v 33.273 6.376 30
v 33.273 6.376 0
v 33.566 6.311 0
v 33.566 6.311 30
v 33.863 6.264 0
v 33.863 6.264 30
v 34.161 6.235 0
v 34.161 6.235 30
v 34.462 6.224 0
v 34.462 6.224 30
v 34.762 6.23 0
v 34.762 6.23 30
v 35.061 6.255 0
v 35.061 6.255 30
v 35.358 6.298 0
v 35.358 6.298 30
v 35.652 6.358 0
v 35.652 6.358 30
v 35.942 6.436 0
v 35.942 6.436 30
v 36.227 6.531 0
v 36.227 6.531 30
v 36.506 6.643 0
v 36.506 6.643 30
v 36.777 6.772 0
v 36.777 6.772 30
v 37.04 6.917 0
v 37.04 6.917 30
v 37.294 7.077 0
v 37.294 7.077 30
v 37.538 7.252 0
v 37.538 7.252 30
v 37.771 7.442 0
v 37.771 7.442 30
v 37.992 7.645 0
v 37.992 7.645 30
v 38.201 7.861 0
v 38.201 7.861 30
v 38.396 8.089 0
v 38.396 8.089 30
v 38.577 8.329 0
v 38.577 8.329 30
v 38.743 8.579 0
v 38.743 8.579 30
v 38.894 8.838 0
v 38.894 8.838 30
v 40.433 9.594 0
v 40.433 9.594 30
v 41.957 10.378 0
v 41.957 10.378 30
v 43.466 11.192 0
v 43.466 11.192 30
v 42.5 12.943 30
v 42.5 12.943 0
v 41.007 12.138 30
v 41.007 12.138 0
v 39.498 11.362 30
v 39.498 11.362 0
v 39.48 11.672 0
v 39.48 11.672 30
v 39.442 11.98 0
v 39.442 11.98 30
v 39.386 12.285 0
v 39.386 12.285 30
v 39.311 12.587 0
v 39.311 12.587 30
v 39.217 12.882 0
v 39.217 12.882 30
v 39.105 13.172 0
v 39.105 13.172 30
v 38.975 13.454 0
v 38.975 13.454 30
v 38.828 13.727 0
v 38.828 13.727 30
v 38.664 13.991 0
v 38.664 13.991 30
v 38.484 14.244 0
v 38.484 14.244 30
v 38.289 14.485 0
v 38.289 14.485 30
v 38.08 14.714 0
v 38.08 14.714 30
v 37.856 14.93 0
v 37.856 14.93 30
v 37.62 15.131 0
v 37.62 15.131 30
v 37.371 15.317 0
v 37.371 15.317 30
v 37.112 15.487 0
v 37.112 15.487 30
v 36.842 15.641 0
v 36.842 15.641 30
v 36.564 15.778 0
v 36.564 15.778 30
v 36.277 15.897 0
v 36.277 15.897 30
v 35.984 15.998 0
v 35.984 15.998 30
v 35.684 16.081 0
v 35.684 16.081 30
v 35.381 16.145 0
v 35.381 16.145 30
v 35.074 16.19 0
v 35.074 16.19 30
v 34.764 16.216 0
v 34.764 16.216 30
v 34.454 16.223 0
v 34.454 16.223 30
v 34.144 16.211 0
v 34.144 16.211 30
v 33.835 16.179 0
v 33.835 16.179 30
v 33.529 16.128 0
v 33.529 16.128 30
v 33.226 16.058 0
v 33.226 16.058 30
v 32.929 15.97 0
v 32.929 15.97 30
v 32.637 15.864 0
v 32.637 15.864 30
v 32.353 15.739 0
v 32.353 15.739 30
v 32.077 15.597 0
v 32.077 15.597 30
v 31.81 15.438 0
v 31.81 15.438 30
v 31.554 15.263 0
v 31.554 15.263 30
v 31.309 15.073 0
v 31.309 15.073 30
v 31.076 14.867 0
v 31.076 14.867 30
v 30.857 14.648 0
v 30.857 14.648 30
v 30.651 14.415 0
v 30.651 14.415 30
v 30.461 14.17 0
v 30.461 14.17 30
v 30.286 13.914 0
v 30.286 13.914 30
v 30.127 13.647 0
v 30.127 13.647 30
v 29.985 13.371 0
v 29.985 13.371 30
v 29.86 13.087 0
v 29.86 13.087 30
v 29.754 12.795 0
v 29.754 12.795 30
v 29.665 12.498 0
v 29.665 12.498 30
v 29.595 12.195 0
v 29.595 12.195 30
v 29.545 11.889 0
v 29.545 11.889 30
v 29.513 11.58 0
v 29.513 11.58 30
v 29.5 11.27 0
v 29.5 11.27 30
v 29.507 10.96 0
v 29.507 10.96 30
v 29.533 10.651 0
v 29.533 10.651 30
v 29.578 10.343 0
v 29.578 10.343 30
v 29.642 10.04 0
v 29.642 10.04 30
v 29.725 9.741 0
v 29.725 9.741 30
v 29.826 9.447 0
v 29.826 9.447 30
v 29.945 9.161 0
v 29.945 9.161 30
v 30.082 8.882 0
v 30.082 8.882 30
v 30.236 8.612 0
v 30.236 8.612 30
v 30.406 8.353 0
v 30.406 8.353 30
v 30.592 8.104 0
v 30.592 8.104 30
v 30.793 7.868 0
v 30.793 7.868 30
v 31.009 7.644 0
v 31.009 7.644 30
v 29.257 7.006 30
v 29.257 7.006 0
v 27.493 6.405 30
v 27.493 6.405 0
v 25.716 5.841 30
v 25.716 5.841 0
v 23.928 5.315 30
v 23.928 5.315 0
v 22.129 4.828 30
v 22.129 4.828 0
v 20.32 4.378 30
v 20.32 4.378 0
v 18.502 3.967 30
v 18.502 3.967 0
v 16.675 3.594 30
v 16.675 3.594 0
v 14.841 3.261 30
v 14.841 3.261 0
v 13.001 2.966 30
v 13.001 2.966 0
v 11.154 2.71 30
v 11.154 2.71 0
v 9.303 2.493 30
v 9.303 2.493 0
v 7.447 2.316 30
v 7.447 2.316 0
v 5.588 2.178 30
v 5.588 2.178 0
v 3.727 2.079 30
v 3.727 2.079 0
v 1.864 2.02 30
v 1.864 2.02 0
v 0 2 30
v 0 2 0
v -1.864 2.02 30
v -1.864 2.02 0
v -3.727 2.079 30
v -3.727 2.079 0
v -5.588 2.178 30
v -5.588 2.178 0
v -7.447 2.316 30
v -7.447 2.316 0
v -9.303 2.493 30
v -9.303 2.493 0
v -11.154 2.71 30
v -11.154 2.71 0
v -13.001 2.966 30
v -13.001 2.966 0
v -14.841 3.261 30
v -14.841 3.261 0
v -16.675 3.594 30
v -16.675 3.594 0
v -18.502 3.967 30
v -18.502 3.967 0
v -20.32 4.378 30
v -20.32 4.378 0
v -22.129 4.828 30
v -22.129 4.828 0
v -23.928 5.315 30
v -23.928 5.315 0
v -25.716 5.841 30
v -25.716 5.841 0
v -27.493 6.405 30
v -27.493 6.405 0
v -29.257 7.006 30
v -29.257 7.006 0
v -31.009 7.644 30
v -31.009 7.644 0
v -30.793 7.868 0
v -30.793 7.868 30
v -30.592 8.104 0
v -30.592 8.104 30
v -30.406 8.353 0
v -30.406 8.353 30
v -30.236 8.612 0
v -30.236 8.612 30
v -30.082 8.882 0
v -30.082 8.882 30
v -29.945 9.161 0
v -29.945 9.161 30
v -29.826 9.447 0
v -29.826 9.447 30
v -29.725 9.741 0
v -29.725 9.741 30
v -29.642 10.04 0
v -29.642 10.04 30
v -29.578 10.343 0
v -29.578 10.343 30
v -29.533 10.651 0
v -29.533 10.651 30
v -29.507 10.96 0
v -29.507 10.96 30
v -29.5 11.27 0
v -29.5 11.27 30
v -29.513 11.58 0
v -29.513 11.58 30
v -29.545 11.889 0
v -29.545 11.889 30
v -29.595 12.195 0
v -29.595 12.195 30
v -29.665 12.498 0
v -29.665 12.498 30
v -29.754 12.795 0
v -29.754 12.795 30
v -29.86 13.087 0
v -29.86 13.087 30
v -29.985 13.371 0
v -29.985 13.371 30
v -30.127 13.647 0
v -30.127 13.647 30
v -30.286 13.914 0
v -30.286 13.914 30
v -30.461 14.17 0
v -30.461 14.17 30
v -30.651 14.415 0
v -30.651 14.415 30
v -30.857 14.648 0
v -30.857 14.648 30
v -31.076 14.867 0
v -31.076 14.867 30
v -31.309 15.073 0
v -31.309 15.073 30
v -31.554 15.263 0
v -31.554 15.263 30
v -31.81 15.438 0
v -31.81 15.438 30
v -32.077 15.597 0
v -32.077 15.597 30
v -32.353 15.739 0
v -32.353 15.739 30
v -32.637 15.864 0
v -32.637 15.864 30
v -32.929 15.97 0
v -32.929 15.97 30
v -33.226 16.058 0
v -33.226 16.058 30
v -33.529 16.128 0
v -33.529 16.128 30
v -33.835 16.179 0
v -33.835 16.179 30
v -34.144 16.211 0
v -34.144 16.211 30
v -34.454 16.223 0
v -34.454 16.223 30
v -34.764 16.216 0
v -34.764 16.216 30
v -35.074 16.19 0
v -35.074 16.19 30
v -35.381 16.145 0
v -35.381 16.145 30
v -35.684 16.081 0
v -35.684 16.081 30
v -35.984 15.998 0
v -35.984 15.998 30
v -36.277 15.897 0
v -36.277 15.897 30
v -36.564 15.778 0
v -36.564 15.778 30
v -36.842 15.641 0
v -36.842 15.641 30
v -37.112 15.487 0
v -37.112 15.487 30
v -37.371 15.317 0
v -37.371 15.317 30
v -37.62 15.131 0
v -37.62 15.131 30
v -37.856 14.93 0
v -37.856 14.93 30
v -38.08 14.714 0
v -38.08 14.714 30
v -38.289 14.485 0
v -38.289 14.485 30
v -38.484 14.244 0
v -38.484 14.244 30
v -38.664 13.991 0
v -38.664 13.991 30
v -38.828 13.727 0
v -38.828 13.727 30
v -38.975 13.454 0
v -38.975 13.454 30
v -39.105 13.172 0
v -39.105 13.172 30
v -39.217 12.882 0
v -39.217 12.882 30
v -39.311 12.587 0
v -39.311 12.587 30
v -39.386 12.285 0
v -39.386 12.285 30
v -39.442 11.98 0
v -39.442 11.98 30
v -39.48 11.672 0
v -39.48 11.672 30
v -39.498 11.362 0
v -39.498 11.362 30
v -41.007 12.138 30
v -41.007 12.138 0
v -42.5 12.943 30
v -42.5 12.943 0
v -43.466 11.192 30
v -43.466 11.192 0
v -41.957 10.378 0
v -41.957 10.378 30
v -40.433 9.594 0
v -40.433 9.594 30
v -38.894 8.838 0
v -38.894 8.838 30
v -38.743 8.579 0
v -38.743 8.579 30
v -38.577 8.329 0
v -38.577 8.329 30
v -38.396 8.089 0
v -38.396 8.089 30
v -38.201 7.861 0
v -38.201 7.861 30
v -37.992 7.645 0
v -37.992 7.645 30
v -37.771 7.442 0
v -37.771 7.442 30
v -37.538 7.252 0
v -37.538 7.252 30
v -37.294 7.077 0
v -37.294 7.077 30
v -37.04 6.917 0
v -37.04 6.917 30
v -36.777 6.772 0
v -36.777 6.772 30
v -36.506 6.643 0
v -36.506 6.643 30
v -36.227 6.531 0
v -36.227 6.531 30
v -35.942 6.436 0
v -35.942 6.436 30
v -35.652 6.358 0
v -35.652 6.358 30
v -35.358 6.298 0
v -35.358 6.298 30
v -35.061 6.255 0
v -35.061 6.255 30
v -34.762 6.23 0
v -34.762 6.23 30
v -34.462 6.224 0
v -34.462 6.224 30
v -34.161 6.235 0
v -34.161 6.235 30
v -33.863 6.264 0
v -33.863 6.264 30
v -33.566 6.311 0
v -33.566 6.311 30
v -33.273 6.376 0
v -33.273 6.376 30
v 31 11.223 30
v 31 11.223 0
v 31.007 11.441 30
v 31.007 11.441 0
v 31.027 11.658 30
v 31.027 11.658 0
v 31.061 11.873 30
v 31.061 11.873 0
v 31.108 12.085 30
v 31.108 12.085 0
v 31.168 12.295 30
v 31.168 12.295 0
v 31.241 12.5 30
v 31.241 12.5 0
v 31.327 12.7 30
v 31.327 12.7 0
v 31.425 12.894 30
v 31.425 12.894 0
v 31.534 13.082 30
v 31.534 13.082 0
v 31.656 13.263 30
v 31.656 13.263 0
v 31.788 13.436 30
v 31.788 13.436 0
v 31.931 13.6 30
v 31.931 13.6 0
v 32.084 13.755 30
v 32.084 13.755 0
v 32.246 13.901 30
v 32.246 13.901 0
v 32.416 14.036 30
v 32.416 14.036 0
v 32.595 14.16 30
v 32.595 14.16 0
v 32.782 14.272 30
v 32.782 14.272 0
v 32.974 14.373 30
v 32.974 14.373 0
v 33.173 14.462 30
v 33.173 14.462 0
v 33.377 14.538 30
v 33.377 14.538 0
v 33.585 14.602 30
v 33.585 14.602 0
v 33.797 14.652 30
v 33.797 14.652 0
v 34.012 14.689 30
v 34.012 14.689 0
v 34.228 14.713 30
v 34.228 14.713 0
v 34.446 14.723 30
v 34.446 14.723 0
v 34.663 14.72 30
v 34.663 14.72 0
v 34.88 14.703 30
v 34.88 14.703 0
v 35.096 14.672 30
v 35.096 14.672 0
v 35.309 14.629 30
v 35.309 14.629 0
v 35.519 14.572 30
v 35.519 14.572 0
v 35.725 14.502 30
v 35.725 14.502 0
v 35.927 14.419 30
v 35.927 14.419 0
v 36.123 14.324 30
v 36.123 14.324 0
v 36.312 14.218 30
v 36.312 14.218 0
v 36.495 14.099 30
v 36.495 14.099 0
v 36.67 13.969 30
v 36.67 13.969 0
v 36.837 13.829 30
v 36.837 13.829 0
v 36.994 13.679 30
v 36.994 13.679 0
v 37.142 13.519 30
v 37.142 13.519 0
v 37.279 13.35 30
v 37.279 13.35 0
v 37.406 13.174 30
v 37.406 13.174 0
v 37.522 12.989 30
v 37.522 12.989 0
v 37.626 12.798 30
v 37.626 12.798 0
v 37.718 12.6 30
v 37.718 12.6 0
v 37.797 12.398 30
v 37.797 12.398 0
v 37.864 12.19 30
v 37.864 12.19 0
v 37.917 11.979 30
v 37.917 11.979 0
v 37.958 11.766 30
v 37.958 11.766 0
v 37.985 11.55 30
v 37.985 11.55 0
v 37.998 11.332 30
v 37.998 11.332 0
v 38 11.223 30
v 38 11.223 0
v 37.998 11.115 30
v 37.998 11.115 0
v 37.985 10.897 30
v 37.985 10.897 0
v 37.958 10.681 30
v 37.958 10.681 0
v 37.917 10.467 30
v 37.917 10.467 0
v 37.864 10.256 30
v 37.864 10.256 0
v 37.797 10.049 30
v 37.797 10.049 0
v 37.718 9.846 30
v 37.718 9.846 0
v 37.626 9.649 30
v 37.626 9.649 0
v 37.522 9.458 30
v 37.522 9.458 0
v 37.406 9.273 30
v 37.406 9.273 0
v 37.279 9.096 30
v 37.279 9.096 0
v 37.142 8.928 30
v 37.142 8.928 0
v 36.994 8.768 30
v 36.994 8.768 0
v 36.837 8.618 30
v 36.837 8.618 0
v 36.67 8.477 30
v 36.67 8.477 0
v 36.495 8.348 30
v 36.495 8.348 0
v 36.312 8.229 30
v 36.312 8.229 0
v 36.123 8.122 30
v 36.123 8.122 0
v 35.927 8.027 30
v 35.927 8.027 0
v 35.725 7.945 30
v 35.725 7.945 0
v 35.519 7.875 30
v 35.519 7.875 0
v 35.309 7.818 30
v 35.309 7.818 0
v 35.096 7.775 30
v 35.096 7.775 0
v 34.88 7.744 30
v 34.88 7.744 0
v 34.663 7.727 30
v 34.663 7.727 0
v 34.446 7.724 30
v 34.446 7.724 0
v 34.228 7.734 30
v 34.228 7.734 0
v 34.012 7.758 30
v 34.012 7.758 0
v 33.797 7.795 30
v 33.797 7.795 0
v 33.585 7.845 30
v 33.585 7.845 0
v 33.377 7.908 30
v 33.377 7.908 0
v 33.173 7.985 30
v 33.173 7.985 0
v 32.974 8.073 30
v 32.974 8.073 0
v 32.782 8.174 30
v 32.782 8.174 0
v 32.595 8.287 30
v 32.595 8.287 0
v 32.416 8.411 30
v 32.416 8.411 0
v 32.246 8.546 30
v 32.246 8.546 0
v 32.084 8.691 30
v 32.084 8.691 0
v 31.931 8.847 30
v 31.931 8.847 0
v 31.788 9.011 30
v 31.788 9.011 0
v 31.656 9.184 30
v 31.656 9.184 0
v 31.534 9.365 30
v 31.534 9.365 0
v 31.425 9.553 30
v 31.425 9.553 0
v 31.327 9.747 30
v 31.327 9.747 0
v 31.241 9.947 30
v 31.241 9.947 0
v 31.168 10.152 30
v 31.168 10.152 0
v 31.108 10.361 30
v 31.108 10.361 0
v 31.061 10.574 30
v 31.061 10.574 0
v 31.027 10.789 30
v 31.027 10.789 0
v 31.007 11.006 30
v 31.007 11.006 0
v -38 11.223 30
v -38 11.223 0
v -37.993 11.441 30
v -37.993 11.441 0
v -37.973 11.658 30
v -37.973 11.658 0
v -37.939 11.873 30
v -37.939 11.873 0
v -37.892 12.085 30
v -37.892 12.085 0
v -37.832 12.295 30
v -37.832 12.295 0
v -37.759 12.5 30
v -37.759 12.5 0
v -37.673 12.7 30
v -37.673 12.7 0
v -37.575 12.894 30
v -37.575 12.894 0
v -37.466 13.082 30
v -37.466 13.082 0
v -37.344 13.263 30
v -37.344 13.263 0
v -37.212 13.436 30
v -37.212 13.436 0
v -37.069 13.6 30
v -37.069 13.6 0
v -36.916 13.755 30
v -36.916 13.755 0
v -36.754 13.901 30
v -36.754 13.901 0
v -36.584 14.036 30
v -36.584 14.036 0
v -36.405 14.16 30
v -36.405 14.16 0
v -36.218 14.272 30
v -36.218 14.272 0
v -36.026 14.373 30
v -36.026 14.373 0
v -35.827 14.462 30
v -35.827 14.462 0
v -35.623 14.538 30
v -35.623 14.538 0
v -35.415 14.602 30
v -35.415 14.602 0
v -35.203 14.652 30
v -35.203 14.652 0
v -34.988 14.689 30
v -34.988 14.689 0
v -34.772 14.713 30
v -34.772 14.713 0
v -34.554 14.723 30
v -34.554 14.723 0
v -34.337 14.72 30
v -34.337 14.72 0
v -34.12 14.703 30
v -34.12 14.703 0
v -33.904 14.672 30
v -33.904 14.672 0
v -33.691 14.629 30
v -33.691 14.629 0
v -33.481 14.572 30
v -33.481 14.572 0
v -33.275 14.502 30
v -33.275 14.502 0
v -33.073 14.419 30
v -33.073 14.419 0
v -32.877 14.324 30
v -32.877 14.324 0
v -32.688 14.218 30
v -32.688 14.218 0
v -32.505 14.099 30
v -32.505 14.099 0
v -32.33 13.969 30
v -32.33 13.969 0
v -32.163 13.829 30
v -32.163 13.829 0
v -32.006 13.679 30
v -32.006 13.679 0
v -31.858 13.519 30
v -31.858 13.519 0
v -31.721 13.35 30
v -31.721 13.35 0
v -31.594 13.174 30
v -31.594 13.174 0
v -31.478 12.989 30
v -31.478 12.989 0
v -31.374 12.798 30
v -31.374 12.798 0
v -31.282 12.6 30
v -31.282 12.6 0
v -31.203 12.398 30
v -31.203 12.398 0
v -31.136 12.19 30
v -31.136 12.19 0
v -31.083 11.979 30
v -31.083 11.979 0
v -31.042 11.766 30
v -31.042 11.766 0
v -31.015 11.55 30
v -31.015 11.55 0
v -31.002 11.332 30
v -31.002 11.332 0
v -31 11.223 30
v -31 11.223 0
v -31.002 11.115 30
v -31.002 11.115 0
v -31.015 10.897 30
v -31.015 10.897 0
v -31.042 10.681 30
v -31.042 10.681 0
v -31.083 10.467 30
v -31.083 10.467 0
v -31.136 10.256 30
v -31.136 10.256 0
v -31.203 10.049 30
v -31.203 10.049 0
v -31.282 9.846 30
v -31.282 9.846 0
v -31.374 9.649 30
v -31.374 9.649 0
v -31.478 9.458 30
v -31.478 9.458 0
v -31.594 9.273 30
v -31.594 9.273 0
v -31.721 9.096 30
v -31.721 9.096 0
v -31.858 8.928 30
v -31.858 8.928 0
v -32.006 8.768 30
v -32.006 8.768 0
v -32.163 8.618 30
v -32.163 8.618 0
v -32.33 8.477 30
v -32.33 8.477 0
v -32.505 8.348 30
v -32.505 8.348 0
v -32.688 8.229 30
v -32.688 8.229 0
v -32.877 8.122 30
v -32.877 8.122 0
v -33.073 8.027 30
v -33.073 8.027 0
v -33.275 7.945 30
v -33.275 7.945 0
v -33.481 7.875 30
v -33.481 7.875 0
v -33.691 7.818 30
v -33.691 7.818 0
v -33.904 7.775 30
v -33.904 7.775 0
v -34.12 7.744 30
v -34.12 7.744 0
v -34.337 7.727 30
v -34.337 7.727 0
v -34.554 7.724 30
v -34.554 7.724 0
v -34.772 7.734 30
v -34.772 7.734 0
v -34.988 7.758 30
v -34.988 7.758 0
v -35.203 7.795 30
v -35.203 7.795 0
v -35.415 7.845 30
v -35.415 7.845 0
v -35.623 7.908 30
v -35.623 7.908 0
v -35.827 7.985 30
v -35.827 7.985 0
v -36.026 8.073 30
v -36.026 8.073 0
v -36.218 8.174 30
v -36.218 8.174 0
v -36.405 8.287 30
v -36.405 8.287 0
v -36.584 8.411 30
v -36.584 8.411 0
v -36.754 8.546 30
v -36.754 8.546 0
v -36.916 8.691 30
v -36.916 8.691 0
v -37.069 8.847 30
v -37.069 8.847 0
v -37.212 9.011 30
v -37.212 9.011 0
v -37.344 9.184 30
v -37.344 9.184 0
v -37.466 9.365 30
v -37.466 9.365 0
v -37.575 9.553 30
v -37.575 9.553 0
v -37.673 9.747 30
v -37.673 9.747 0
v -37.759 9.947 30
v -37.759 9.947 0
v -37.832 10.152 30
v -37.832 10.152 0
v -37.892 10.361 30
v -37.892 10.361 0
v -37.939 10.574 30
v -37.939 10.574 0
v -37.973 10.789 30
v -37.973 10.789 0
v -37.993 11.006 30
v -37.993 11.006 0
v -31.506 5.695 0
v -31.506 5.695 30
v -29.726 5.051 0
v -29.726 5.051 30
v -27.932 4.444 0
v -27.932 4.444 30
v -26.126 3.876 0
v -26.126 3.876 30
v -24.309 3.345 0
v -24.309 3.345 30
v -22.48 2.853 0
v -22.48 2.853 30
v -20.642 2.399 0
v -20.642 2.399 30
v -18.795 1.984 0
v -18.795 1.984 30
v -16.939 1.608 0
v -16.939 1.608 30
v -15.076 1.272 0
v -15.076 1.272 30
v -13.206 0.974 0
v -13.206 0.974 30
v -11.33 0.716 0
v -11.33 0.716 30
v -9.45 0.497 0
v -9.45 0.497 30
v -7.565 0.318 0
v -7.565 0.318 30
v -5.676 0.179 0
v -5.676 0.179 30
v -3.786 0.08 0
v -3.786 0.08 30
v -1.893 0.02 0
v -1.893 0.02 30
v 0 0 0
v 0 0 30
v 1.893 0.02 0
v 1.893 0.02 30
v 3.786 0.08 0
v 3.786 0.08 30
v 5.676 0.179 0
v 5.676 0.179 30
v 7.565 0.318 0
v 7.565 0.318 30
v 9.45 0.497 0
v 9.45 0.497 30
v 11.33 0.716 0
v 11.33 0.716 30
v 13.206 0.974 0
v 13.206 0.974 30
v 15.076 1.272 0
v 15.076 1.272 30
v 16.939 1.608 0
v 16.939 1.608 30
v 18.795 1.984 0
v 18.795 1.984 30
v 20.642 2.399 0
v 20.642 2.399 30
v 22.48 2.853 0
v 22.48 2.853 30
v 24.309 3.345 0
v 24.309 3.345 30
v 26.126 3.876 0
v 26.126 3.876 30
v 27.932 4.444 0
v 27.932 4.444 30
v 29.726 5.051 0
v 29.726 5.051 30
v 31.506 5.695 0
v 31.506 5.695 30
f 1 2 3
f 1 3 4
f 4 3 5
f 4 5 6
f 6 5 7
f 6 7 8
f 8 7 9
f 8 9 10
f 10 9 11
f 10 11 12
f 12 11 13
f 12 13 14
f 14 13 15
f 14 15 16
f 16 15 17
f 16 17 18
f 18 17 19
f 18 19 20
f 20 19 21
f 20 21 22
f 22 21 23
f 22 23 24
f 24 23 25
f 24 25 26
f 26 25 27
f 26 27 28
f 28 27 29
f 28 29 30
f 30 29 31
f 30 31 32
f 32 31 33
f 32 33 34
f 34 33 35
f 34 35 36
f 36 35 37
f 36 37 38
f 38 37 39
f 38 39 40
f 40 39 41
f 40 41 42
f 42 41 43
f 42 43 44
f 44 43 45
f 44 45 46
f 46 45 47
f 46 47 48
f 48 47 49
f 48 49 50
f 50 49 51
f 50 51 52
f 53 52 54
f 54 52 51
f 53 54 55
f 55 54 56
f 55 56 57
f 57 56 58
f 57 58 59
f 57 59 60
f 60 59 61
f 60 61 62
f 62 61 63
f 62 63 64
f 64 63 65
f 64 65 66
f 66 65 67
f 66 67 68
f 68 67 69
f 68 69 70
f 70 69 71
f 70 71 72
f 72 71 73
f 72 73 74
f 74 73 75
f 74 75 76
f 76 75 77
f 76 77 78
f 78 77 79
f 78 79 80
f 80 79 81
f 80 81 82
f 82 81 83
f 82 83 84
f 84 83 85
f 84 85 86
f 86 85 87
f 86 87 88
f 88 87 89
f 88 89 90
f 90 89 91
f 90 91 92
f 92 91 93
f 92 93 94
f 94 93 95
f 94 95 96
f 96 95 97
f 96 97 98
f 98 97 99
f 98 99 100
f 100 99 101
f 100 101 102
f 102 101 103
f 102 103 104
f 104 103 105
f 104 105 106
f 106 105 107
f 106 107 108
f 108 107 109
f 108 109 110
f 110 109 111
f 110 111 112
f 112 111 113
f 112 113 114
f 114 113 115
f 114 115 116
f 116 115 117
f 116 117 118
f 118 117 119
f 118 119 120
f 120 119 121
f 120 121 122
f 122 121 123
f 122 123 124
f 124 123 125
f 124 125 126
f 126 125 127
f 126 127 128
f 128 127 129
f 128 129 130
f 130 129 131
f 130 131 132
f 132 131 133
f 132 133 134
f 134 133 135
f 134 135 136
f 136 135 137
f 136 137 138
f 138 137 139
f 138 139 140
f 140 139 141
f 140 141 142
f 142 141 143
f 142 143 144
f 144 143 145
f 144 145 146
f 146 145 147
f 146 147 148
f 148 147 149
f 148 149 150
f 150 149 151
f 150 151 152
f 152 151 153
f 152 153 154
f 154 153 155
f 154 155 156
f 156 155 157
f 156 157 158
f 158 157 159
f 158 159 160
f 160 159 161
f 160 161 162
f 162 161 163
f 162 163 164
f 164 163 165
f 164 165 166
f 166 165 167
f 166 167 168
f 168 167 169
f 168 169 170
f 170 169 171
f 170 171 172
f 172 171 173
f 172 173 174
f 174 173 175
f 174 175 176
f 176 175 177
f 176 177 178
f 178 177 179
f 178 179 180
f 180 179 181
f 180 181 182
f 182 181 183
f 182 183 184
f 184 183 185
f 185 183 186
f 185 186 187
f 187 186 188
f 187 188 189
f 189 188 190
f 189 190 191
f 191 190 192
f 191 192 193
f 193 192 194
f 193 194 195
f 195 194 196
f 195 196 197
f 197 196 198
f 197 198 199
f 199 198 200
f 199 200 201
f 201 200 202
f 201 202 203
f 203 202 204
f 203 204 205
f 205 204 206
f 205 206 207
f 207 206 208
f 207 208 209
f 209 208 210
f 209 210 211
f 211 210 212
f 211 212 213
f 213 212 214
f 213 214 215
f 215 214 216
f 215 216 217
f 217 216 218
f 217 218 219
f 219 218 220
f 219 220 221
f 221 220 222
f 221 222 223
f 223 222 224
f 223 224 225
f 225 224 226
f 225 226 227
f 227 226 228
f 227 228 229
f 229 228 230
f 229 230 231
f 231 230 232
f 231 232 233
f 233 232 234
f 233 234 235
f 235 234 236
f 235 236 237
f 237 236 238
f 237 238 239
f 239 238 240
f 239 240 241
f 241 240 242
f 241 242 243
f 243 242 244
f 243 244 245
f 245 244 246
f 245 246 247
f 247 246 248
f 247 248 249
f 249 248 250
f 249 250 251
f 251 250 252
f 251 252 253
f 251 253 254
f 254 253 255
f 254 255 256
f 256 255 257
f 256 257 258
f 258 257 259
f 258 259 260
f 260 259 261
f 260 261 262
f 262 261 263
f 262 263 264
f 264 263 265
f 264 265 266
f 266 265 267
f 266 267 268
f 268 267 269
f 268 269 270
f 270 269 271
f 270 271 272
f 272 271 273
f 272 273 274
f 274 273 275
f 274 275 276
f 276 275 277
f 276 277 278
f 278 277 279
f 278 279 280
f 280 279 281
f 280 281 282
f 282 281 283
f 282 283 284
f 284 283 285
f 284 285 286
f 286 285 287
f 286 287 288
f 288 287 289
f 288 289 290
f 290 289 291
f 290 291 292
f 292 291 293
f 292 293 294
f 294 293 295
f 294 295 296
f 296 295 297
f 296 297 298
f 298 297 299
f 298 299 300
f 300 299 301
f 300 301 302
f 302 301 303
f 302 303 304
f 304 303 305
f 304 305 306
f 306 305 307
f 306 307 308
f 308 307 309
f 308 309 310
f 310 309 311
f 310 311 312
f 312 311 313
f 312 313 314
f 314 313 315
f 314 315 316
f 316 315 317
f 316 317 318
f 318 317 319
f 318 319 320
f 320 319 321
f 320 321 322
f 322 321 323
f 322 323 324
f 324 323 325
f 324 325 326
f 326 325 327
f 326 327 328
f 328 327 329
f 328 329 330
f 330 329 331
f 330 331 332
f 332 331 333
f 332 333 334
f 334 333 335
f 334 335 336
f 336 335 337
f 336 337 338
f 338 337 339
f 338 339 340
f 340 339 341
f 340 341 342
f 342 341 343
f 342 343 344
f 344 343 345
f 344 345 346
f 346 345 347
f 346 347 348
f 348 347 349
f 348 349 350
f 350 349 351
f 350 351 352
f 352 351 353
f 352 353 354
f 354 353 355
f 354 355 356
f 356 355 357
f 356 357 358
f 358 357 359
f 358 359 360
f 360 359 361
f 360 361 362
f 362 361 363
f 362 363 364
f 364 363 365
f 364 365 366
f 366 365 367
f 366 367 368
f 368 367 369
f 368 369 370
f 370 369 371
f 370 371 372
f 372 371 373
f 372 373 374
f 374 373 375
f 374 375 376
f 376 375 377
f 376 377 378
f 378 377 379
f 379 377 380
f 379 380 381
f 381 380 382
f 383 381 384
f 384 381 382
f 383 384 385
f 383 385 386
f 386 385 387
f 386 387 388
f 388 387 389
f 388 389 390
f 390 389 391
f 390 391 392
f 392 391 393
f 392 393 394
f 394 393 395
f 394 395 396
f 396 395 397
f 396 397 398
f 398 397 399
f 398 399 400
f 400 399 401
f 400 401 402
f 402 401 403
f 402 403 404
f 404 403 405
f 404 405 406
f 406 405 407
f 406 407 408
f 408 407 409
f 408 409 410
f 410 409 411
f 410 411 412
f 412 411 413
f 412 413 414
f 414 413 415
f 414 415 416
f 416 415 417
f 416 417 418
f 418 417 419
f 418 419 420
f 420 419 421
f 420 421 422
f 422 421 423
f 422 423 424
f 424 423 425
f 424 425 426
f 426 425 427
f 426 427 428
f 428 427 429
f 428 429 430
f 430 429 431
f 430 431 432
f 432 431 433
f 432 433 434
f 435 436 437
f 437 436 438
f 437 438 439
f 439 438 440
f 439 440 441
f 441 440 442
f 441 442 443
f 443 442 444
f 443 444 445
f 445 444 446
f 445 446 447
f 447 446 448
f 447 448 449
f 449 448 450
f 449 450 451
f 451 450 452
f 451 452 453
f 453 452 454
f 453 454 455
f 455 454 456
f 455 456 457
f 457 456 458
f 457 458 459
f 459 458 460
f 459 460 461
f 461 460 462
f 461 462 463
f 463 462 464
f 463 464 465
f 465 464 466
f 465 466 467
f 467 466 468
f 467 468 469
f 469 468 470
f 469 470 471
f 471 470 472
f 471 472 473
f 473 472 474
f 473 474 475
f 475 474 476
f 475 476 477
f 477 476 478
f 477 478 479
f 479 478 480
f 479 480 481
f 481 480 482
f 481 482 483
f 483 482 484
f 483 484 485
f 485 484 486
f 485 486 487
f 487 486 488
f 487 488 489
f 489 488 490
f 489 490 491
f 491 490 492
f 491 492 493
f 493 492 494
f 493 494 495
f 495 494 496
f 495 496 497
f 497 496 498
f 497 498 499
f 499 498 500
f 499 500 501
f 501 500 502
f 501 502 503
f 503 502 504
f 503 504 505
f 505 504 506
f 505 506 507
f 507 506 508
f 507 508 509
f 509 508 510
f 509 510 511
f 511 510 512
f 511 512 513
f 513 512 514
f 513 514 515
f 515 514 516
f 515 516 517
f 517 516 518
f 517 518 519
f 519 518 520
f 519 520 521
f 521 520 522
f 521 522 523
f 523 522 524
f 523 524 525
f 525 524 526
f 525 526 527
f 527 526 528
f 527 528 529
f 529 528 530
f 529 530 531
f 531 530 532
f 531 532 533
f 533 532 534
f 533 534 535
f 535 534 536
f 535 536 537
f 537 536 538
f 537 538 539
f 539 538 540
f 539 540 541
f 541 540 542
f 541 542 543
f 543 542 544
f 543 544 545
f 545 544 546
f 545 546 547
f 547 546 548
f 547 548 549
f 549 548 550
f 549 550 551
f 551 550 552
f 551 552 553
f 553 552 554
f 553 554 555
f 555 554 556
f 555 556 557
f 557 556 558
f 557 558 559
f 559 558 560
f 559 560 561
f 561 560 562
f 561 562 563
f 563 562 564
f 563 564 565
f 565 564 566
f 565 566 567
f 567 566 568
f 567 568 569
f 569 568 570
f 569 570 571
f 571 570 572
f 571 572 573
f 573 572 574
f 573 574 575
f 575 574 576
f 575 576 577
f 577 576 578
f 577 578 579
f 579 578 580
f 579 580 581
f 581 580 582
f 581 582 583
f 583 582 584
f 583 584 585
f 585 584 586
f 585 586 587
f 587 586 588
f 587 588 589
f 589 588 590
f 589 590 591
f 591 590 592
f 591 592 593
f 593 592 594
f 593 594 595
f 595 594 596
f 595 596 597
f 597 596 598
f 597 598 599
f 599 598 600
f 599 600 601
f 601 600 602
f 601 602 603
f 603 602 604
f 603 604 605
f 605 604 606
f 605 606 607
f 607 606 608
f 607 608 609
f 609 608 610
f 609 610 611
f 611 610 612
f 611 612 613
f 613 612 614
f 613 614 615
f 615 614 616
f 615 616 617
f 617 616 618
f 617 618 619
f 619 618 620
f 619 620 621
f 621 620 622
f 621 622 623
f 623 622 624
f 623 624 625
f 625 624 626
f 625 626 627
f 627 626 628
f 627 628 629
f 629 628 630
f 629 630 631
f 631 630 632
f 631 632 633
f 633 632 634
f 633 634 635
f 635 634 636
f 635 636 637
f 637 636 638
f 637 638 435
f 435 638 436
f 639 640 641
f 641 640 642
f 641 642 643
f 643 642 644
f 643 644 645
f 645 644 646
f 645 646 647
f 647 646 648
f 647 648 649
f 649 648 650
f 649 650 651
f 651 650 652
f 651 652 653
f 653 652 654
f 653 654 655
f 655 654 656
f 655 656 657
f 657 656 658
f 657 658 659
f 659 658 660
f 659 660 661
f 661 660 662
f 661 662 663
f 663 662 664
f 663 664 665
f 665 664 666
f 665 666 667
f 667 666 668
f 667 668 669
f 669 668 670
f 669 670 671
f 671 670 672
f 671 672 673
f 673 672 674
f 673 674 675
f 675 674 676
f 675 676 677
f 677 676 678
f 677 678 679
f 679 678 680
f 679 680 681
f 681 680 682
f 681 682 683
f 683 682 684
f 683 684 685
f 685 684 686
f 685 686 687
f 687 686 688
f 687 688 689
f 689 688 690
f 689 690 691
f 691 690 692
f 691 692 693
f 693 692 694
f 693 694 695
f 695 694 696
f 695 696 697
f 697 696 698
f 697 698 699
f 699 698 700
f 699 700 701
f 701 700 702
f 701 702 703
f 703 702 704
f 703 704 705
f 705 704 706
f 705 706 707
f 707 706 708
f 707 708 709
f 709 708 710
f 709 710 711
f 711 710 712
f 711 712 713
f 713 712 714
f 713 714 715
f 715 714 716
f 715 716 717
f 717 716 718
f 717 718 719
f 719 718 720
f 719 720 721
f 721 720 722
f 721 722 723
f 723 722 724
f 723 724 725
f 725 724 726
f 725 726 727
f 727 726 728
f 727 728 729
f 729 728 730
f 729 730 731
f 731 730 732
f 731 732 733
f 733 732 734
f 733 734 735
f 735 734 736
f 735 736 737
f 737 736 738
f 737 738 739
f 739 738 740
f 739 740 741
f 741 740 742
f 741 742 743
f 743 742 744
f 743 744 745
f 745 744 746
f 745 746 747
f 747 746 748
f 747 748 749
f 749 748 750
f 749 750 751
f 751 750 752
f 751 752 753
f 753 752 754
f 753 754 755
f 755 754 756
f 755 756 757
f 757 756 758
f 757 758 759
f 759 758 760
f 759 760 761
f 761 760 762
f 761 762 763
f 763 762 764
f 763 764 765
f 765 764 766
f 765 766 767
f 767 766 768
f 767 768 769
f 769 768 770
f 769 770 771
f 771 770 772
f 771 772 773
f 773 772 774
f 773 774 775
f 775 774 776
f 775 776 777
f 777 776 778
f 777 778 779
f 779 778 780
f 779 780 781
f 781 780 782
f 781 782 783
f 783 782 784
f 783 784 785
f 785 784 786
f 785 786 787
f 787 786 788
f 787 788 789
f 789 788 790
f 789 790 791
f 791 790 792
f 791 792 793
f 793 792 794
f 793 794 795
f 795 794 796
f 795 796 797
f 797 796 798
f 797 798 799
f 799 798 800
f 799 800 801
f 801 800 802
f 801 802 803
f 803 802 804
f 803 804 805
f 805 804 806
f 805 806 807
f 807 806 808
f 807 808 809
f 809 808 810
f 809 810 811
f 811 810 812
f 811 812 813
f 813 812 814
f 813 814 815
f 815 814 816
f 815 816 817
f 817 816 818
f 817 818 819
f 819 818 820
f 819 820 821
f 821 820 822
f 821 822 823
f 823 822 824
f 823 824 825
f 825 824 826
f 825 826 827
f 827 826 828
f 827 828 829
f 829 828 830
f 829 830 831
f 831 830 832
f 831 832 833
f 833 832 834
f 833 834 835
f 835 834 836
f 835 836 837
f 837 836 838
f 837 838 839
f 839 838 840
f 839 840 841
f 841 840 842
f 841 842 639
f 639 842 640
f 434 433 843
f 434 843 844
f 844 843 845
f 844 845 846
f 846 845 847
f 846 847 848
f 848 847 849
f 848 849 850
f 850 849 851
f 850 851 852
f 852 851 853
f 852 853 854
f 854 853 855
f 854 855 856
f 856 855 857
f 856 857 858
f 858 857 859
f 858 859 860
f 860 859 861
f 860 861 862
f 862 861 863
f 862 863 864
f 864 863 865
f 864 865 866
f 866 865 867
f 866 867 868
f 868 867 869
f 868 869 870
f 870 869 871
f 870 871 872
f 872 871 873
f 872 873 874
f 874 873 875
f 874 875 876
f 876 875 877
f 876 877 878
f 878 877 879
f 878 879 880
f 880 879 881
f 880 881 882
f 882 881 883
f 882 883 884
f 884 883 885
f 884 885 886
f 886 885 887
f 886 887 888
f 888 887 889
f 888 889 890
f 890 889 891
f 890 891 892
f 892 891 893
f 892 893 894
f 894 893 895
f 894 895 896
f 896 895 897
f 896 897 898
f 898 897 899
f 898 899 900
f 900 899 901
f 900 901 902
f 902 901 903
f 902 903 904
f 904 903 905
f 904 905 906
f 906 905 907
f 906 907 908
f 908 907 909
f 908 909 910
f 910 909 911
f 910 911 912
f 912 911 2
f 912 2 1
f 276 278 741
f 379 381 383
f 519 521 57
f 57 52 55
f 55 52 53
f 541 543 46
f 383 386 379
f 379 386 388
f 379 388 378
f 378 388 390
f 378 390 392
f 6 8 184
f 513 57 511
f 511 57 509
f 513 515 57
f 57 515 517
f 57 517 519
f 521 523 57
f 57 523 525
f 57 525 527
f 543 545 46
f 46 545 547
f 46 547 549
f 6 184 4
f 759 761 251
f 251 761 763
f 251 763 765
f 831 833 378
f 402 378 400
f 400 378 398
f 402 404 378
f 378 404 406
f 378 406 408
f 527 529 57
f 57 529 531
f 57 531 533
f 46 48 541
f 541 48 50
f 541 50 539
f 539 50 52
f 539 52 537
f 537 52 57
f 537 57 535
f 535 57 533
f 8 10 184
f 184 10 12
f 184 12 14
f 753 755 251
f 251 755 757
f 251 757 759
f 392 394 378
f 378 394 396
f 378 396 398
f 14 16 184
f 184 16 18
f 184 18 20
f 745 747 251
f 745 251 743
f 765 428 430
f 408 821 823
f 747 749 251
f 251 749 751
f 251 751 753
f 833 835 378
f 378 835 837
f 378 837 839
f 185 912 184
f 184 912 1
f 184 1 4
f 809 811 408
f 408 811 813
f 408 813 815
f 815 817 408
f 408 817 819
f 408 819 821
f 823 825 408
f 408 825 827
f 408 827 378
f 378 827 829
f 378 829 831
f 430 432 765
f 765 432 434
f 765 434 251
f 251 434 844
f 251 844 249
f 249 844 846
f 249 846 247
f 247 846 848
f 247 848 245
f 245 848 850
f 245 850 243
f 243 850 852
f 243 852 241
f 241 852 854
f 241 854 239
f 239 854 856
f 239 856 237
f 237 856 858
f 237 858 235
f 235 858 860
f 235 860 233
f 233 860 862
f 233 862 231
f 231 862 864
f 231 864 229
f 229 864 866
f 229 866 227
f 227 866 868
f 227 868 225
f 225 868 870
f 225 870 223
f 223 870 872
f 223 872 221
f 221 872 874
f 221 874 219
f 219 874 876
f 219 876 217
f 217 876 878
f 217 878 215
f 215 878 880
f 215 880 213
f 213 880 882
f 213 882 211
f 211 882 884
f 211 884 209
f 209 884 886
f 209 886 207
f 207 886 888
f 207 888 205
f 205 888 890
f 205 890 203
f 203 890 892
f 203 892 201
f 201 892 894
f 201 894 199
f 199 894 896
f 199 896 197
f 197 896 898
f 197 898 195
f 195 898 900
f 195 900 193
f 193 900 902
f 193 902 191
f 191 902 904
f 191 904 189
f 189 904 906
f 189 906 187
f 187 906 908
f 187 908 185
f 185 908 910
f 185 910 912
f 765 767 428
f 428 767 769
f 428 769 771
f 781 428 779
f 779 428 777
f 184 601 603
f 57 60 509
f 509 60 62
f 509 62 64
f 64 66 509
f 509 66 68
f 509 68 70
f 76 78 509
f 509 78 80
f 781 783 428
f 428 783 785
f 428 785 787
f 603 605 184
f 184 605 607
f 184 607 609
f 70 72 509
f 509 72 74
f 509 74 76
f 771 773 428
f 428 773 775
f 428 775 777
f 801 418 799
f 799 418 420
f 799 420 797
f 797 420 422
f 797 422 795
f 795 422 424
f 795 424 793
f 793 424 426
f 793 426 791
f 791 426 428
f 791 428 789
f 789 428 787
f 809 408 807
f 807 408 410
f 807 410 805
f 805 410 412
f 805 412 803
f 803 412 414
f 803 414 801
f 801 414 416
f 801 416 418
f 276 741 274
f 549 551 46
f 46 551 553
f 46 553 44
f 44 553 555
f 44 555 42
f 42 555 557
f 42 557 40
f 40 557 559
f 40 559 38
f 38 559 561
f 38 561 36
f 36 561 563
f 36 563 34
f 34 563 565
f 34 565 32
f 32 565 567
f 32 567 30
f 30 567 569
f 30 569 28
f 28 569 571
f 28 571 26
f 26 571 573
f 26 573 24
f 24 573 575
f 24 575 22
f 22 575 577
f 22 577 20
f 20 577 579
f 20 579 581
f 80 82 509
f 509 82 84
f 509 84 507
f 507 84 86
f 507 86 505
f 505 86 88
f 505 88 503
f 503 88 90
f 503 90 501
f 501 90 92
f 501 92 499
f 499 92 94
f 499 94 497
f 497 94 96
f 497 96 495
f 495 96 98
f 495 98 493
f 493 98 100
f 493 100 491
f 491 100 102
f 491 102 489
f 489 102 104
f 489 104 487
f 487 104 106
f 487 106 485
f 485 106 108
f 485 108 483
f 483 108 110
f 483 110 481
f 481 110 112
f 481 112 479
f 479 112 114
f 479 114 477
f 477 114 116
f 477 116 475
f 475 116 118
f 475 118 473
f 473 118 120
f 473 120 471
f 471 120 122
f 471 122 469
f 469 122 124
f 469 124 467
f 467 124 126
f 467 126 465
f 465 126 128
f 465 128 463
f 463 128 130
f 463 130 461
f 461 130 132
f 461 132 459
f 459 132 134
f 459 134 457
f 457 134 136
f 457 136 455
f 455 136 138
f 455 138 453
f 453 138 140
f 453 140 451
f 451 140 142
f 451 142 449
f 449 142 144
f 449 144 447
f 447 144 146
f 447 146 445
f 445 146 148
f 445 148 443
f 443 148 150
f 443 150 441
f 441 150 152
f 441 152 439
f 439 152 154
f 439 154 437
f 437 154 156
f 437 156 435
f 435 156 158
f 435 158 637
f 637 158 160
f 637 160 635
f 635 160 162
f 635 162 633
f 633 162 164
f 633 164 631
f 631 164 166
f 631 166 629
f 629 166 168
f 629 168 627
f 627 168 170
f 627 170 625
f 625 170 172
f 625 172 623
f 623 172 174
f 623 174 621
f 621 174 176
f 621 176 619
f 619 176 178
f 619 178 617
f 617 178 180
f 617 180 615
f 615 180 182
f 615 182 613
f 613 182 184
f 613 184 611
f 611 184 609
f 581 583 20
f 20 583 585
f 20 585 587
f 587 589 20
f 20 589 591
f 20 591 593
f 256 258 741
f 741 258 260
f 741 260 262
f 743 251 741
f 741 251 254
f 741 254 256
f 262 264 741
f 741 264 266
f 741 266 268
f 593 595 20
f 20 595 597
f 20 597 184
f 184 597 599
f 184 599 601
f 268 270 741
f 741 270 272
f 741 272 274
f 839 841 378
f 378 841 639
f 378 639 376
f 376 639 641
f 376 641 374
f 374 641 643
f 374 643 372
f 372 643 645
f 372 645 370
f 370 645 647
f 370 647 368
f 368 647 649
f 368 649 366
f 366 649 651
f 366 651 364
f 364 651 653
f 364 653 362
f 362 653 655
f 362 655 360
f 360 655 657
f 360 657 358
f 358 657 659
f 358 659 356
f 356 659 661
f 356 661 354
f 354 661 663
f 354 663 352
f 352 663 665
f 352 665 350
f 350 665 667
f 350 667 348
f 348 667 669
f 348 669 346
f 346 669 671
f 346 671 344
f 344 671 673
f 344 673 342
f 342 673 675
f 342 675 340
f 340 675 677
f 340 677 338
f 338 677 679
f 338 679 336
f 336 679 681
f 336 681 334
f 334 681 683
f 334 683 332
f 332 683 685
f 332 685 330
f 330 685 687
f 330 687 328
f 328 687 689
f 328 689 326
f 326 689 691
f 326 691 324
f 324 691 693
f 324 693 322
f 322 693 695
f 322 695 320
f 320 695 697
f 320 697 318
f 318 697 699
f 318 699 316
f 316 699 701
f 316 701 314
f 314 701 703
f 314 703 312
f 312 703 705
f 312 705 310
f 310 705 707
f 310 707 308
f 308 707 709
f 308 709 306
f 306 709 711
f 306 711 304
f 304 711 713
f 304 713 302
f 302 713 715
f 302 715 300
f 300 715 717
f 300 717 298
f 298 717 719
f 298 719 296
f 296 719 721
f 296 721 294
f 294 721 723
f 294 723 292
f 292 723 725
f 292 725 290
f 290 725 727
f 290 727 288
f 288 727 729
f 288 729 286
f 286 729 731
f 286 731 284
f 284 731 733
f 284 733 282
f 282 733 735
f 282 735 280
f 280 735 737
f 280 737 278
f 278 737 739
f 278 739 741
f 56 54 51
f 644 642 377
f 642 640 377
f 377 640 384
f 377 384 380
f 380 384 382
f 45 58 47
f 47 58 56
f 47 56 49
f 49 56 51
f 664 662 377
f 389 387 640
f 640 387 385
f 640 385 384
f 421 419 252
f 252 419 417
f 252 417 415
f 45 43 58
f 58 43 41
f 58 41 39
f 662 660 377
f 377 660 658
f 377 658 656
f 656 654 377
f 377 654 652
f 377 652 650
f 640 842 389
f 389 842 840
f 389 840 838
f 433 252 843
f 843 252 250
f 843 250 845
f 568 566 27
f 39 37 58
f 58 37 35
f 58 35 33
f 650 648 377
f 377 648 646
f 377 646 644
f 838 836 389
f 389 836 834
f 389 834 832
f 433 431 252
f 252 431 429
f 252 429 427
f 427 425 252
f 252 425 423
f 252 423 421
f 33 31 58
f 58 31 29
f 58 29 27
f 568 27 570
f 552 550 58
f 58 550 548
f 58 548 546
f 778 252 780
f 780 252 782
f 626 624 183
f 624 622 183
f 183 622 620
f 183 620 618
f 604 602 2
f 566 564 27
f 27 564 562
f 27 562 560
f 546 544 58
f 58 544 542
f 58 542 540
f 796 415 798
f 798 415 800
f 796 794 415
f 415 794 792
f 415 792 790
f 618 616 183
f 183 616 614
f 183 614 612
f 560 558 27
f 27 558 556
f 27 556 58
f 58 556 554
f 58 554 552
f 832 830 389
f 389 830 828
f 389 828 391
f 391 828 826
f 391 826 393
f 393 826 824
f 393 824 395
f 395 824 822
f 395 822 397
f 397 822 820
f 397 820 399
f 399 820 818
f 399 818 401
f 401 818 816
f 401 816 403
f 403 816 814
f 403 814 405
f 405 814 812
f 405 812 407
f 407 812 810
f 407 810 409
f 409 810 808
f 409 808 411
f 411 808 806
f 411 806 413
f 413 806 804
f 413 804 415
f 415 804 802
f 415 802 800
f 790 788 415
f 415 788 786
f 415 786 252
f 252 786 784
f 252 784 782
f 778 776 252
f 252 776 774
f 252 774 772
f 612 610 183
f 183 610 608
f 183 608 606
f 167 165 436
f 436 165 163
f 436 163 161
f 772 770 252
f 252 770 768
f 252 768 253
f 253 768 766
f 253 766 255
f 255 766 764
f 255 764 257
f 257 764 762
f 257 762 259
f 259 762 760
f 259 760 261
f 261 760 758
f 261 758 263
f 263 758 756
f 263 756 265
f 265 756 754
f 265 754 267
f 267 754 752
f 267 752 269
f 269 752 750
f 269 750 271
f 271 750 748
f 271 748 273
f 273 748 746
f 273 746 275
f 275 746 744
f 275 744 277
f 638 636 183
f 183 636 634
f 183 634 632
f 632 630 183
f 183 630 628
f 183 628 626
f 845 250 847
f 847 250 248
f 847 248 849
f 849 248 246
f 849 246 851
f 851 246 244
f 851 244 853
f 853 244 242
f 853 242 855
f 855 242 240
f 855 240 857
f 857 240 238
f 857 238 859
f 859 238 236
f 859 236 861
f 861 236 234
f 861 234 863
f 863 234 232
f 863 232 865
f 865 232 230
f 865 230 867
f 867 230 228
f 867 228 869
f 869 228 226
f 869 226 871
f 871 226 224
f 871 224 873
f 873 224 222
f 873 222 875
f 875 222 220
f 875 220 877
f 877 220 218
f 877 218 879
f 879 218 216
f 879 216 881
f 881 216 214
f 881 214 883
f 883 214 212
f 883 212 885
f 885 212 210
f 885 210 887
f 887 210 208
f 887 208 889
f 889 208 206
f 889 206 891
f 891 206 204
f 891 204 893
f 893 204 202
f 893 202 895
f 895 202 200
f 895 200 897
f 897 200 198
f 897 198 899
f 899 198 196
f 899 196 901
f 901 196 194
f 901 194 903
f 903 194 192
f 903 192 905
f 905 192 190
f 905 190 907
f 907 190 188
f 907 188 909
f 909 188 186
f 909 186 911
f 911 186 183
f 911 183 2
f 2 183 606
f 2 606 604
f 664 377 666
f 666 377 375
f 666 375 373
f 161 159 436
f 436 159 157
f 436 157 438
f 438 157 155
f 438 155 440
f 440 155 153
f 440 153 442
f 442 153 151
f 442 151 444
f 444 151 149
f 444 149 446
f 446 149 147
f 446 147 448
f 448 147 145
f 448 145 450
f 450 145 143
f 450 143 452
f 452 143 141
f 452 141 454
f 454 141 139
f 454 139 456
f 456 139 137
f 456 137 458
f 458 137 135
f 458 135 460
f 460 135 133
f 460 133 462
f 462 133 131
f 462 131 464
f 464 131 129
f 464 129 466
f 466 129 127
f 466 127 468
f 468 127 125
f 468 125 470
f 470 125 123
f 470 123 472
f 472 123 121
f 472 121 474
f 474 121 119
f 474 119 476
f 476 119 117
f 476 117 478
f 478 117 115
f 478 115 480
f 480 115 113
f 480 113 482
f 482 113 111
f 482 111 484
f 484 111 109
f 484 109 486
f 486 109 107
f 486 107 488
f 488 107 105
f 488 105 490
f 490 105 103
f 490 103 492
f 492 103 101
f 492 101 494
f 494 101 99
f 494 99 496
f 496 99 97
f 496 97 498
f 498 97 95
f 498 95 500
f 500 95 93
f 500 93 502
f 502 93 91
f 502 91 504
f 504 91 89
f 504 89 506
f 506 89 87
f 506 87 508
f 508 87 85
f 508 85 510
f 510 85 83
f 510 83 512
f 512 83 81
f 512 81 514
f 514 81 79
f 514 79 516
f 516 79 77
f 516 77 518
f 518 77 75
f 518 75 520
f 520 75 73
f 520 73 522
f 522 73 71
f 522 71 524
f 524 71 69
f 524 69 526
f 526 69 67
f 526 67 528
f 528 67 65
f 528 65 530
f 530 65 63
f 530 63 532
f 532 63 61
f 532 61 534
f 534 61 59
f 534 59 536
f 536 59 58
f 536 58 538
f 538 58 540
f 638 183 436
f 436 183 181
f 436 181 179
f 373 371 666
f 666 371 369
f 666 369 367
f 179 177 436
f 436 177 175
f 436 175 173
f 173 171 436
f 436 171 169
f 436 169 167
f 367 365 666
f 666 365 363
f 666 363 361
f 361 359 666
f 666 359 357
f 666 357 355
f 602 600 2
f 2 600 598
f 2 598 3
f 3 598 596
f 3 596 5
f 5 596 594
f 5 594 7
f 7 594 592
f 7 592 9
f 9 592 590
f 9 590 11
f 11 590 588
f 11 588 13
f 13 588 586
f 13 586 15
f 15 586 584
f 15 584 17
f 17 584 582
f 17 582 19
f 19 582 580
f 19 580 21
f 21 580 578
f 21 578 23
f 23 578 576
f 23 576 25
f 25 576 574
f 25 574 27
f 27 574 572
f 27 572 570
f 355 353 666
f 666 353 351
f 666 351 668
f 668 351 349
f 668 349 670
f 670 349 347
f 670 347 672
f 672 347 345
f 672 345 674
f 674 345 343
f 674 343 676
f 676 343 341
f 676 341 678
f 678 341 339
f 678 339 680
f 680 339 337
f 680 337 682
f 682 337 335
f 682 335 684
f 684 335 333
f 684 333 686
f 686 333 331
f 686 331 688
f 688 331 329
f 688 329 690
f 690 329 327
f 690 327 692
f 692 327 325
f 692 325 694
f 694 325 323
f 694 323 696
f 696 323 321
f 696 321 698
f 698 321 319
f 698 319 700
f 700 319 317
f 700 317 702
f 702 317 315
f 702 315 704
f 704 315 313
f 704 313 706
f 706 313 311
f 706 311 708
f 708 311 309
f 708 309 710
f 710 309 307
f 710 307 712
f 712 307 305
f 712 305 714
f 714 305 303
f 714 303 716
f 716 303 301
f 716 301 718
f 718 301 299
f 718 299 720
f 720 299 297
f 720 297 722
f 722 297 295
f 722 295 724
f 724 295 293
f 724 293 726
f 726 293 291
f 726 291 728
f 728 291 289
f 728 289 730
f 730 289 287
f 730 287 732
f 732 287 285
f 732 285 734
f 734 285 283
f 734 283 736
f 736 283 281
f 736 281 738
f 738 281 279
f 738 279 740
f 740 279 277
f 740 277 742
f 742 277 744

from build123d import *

# Parameters (mm, degrees)
SKETCH1_R           = 3.5
BOSS_EXTRUDE1_DEPTH = 30


with BuildPart() as part:
    # Sketch1 → Boss-Extrude1 (new body)
    with BuildSketch(Plane.XY):
        with BuildLine():
            ThreePointArc((33.272867256, 6.376341239), (36.505813953, 6.6433833), (38.894452917, 8.83830009))
            ThreePointArc((38.894452917, 8.83830009), (41.196992362, 9.982453047), (43.465909091, 11.19191192))
            Line((43.465909091, 11.19191192), (42.5, 12.943202766))
            ThreePointArc((42.5, 12.943202766), (41.006656684, 12.138237192), (39.498073317, 11.362208804))
            ThreePointArc((39.498073317, 11.362208804), (32.494186047, 15.80345107), (31.008619489, 7.644274532))
            ThreePointArc((31.008619489, 7.644274532), (0, 2), (-31.008619489, 7.644274532))
            ThreePointArc((-31.008619489, 7.644274532), (-32.494186047, 15.80345107), (-39.498073317, 11.362208804))
            ThreePointArc((-39.498073317, 11.362208804), (-41.006656684, 12.138237192), (-42.5, 12.943202766))
            Line((-42.5, 12.943202766), (-43.465909091, 11.19191192))
            ThreePointArc((-43.465909091, 11.19191192), (-41.196992362, 9.982453047), (-38.894452917, 8.83830009))
            ThreePointArc((-38.894452917, 8.83830009), (-36.505813953, 6.6433833), (-33.272867256, 6.376341239))
            ThreePointArc((-33.272867256, 6.376341239), (0, 0), (33.272867256, 6.376341239))
        make_face()
        with Locations((-34.5, 11.223417185)):
            Circle(SKETCH1_R, mode=Mode.SUBTRACT)
        with Locations((34.5, 11.223417185)):
            Circle(SKETCH1_R, mode=Mode.SUBTRACT)
    extrude(amount=BOSS_EXTRUDE1_DEPTH)


solid = part.part
